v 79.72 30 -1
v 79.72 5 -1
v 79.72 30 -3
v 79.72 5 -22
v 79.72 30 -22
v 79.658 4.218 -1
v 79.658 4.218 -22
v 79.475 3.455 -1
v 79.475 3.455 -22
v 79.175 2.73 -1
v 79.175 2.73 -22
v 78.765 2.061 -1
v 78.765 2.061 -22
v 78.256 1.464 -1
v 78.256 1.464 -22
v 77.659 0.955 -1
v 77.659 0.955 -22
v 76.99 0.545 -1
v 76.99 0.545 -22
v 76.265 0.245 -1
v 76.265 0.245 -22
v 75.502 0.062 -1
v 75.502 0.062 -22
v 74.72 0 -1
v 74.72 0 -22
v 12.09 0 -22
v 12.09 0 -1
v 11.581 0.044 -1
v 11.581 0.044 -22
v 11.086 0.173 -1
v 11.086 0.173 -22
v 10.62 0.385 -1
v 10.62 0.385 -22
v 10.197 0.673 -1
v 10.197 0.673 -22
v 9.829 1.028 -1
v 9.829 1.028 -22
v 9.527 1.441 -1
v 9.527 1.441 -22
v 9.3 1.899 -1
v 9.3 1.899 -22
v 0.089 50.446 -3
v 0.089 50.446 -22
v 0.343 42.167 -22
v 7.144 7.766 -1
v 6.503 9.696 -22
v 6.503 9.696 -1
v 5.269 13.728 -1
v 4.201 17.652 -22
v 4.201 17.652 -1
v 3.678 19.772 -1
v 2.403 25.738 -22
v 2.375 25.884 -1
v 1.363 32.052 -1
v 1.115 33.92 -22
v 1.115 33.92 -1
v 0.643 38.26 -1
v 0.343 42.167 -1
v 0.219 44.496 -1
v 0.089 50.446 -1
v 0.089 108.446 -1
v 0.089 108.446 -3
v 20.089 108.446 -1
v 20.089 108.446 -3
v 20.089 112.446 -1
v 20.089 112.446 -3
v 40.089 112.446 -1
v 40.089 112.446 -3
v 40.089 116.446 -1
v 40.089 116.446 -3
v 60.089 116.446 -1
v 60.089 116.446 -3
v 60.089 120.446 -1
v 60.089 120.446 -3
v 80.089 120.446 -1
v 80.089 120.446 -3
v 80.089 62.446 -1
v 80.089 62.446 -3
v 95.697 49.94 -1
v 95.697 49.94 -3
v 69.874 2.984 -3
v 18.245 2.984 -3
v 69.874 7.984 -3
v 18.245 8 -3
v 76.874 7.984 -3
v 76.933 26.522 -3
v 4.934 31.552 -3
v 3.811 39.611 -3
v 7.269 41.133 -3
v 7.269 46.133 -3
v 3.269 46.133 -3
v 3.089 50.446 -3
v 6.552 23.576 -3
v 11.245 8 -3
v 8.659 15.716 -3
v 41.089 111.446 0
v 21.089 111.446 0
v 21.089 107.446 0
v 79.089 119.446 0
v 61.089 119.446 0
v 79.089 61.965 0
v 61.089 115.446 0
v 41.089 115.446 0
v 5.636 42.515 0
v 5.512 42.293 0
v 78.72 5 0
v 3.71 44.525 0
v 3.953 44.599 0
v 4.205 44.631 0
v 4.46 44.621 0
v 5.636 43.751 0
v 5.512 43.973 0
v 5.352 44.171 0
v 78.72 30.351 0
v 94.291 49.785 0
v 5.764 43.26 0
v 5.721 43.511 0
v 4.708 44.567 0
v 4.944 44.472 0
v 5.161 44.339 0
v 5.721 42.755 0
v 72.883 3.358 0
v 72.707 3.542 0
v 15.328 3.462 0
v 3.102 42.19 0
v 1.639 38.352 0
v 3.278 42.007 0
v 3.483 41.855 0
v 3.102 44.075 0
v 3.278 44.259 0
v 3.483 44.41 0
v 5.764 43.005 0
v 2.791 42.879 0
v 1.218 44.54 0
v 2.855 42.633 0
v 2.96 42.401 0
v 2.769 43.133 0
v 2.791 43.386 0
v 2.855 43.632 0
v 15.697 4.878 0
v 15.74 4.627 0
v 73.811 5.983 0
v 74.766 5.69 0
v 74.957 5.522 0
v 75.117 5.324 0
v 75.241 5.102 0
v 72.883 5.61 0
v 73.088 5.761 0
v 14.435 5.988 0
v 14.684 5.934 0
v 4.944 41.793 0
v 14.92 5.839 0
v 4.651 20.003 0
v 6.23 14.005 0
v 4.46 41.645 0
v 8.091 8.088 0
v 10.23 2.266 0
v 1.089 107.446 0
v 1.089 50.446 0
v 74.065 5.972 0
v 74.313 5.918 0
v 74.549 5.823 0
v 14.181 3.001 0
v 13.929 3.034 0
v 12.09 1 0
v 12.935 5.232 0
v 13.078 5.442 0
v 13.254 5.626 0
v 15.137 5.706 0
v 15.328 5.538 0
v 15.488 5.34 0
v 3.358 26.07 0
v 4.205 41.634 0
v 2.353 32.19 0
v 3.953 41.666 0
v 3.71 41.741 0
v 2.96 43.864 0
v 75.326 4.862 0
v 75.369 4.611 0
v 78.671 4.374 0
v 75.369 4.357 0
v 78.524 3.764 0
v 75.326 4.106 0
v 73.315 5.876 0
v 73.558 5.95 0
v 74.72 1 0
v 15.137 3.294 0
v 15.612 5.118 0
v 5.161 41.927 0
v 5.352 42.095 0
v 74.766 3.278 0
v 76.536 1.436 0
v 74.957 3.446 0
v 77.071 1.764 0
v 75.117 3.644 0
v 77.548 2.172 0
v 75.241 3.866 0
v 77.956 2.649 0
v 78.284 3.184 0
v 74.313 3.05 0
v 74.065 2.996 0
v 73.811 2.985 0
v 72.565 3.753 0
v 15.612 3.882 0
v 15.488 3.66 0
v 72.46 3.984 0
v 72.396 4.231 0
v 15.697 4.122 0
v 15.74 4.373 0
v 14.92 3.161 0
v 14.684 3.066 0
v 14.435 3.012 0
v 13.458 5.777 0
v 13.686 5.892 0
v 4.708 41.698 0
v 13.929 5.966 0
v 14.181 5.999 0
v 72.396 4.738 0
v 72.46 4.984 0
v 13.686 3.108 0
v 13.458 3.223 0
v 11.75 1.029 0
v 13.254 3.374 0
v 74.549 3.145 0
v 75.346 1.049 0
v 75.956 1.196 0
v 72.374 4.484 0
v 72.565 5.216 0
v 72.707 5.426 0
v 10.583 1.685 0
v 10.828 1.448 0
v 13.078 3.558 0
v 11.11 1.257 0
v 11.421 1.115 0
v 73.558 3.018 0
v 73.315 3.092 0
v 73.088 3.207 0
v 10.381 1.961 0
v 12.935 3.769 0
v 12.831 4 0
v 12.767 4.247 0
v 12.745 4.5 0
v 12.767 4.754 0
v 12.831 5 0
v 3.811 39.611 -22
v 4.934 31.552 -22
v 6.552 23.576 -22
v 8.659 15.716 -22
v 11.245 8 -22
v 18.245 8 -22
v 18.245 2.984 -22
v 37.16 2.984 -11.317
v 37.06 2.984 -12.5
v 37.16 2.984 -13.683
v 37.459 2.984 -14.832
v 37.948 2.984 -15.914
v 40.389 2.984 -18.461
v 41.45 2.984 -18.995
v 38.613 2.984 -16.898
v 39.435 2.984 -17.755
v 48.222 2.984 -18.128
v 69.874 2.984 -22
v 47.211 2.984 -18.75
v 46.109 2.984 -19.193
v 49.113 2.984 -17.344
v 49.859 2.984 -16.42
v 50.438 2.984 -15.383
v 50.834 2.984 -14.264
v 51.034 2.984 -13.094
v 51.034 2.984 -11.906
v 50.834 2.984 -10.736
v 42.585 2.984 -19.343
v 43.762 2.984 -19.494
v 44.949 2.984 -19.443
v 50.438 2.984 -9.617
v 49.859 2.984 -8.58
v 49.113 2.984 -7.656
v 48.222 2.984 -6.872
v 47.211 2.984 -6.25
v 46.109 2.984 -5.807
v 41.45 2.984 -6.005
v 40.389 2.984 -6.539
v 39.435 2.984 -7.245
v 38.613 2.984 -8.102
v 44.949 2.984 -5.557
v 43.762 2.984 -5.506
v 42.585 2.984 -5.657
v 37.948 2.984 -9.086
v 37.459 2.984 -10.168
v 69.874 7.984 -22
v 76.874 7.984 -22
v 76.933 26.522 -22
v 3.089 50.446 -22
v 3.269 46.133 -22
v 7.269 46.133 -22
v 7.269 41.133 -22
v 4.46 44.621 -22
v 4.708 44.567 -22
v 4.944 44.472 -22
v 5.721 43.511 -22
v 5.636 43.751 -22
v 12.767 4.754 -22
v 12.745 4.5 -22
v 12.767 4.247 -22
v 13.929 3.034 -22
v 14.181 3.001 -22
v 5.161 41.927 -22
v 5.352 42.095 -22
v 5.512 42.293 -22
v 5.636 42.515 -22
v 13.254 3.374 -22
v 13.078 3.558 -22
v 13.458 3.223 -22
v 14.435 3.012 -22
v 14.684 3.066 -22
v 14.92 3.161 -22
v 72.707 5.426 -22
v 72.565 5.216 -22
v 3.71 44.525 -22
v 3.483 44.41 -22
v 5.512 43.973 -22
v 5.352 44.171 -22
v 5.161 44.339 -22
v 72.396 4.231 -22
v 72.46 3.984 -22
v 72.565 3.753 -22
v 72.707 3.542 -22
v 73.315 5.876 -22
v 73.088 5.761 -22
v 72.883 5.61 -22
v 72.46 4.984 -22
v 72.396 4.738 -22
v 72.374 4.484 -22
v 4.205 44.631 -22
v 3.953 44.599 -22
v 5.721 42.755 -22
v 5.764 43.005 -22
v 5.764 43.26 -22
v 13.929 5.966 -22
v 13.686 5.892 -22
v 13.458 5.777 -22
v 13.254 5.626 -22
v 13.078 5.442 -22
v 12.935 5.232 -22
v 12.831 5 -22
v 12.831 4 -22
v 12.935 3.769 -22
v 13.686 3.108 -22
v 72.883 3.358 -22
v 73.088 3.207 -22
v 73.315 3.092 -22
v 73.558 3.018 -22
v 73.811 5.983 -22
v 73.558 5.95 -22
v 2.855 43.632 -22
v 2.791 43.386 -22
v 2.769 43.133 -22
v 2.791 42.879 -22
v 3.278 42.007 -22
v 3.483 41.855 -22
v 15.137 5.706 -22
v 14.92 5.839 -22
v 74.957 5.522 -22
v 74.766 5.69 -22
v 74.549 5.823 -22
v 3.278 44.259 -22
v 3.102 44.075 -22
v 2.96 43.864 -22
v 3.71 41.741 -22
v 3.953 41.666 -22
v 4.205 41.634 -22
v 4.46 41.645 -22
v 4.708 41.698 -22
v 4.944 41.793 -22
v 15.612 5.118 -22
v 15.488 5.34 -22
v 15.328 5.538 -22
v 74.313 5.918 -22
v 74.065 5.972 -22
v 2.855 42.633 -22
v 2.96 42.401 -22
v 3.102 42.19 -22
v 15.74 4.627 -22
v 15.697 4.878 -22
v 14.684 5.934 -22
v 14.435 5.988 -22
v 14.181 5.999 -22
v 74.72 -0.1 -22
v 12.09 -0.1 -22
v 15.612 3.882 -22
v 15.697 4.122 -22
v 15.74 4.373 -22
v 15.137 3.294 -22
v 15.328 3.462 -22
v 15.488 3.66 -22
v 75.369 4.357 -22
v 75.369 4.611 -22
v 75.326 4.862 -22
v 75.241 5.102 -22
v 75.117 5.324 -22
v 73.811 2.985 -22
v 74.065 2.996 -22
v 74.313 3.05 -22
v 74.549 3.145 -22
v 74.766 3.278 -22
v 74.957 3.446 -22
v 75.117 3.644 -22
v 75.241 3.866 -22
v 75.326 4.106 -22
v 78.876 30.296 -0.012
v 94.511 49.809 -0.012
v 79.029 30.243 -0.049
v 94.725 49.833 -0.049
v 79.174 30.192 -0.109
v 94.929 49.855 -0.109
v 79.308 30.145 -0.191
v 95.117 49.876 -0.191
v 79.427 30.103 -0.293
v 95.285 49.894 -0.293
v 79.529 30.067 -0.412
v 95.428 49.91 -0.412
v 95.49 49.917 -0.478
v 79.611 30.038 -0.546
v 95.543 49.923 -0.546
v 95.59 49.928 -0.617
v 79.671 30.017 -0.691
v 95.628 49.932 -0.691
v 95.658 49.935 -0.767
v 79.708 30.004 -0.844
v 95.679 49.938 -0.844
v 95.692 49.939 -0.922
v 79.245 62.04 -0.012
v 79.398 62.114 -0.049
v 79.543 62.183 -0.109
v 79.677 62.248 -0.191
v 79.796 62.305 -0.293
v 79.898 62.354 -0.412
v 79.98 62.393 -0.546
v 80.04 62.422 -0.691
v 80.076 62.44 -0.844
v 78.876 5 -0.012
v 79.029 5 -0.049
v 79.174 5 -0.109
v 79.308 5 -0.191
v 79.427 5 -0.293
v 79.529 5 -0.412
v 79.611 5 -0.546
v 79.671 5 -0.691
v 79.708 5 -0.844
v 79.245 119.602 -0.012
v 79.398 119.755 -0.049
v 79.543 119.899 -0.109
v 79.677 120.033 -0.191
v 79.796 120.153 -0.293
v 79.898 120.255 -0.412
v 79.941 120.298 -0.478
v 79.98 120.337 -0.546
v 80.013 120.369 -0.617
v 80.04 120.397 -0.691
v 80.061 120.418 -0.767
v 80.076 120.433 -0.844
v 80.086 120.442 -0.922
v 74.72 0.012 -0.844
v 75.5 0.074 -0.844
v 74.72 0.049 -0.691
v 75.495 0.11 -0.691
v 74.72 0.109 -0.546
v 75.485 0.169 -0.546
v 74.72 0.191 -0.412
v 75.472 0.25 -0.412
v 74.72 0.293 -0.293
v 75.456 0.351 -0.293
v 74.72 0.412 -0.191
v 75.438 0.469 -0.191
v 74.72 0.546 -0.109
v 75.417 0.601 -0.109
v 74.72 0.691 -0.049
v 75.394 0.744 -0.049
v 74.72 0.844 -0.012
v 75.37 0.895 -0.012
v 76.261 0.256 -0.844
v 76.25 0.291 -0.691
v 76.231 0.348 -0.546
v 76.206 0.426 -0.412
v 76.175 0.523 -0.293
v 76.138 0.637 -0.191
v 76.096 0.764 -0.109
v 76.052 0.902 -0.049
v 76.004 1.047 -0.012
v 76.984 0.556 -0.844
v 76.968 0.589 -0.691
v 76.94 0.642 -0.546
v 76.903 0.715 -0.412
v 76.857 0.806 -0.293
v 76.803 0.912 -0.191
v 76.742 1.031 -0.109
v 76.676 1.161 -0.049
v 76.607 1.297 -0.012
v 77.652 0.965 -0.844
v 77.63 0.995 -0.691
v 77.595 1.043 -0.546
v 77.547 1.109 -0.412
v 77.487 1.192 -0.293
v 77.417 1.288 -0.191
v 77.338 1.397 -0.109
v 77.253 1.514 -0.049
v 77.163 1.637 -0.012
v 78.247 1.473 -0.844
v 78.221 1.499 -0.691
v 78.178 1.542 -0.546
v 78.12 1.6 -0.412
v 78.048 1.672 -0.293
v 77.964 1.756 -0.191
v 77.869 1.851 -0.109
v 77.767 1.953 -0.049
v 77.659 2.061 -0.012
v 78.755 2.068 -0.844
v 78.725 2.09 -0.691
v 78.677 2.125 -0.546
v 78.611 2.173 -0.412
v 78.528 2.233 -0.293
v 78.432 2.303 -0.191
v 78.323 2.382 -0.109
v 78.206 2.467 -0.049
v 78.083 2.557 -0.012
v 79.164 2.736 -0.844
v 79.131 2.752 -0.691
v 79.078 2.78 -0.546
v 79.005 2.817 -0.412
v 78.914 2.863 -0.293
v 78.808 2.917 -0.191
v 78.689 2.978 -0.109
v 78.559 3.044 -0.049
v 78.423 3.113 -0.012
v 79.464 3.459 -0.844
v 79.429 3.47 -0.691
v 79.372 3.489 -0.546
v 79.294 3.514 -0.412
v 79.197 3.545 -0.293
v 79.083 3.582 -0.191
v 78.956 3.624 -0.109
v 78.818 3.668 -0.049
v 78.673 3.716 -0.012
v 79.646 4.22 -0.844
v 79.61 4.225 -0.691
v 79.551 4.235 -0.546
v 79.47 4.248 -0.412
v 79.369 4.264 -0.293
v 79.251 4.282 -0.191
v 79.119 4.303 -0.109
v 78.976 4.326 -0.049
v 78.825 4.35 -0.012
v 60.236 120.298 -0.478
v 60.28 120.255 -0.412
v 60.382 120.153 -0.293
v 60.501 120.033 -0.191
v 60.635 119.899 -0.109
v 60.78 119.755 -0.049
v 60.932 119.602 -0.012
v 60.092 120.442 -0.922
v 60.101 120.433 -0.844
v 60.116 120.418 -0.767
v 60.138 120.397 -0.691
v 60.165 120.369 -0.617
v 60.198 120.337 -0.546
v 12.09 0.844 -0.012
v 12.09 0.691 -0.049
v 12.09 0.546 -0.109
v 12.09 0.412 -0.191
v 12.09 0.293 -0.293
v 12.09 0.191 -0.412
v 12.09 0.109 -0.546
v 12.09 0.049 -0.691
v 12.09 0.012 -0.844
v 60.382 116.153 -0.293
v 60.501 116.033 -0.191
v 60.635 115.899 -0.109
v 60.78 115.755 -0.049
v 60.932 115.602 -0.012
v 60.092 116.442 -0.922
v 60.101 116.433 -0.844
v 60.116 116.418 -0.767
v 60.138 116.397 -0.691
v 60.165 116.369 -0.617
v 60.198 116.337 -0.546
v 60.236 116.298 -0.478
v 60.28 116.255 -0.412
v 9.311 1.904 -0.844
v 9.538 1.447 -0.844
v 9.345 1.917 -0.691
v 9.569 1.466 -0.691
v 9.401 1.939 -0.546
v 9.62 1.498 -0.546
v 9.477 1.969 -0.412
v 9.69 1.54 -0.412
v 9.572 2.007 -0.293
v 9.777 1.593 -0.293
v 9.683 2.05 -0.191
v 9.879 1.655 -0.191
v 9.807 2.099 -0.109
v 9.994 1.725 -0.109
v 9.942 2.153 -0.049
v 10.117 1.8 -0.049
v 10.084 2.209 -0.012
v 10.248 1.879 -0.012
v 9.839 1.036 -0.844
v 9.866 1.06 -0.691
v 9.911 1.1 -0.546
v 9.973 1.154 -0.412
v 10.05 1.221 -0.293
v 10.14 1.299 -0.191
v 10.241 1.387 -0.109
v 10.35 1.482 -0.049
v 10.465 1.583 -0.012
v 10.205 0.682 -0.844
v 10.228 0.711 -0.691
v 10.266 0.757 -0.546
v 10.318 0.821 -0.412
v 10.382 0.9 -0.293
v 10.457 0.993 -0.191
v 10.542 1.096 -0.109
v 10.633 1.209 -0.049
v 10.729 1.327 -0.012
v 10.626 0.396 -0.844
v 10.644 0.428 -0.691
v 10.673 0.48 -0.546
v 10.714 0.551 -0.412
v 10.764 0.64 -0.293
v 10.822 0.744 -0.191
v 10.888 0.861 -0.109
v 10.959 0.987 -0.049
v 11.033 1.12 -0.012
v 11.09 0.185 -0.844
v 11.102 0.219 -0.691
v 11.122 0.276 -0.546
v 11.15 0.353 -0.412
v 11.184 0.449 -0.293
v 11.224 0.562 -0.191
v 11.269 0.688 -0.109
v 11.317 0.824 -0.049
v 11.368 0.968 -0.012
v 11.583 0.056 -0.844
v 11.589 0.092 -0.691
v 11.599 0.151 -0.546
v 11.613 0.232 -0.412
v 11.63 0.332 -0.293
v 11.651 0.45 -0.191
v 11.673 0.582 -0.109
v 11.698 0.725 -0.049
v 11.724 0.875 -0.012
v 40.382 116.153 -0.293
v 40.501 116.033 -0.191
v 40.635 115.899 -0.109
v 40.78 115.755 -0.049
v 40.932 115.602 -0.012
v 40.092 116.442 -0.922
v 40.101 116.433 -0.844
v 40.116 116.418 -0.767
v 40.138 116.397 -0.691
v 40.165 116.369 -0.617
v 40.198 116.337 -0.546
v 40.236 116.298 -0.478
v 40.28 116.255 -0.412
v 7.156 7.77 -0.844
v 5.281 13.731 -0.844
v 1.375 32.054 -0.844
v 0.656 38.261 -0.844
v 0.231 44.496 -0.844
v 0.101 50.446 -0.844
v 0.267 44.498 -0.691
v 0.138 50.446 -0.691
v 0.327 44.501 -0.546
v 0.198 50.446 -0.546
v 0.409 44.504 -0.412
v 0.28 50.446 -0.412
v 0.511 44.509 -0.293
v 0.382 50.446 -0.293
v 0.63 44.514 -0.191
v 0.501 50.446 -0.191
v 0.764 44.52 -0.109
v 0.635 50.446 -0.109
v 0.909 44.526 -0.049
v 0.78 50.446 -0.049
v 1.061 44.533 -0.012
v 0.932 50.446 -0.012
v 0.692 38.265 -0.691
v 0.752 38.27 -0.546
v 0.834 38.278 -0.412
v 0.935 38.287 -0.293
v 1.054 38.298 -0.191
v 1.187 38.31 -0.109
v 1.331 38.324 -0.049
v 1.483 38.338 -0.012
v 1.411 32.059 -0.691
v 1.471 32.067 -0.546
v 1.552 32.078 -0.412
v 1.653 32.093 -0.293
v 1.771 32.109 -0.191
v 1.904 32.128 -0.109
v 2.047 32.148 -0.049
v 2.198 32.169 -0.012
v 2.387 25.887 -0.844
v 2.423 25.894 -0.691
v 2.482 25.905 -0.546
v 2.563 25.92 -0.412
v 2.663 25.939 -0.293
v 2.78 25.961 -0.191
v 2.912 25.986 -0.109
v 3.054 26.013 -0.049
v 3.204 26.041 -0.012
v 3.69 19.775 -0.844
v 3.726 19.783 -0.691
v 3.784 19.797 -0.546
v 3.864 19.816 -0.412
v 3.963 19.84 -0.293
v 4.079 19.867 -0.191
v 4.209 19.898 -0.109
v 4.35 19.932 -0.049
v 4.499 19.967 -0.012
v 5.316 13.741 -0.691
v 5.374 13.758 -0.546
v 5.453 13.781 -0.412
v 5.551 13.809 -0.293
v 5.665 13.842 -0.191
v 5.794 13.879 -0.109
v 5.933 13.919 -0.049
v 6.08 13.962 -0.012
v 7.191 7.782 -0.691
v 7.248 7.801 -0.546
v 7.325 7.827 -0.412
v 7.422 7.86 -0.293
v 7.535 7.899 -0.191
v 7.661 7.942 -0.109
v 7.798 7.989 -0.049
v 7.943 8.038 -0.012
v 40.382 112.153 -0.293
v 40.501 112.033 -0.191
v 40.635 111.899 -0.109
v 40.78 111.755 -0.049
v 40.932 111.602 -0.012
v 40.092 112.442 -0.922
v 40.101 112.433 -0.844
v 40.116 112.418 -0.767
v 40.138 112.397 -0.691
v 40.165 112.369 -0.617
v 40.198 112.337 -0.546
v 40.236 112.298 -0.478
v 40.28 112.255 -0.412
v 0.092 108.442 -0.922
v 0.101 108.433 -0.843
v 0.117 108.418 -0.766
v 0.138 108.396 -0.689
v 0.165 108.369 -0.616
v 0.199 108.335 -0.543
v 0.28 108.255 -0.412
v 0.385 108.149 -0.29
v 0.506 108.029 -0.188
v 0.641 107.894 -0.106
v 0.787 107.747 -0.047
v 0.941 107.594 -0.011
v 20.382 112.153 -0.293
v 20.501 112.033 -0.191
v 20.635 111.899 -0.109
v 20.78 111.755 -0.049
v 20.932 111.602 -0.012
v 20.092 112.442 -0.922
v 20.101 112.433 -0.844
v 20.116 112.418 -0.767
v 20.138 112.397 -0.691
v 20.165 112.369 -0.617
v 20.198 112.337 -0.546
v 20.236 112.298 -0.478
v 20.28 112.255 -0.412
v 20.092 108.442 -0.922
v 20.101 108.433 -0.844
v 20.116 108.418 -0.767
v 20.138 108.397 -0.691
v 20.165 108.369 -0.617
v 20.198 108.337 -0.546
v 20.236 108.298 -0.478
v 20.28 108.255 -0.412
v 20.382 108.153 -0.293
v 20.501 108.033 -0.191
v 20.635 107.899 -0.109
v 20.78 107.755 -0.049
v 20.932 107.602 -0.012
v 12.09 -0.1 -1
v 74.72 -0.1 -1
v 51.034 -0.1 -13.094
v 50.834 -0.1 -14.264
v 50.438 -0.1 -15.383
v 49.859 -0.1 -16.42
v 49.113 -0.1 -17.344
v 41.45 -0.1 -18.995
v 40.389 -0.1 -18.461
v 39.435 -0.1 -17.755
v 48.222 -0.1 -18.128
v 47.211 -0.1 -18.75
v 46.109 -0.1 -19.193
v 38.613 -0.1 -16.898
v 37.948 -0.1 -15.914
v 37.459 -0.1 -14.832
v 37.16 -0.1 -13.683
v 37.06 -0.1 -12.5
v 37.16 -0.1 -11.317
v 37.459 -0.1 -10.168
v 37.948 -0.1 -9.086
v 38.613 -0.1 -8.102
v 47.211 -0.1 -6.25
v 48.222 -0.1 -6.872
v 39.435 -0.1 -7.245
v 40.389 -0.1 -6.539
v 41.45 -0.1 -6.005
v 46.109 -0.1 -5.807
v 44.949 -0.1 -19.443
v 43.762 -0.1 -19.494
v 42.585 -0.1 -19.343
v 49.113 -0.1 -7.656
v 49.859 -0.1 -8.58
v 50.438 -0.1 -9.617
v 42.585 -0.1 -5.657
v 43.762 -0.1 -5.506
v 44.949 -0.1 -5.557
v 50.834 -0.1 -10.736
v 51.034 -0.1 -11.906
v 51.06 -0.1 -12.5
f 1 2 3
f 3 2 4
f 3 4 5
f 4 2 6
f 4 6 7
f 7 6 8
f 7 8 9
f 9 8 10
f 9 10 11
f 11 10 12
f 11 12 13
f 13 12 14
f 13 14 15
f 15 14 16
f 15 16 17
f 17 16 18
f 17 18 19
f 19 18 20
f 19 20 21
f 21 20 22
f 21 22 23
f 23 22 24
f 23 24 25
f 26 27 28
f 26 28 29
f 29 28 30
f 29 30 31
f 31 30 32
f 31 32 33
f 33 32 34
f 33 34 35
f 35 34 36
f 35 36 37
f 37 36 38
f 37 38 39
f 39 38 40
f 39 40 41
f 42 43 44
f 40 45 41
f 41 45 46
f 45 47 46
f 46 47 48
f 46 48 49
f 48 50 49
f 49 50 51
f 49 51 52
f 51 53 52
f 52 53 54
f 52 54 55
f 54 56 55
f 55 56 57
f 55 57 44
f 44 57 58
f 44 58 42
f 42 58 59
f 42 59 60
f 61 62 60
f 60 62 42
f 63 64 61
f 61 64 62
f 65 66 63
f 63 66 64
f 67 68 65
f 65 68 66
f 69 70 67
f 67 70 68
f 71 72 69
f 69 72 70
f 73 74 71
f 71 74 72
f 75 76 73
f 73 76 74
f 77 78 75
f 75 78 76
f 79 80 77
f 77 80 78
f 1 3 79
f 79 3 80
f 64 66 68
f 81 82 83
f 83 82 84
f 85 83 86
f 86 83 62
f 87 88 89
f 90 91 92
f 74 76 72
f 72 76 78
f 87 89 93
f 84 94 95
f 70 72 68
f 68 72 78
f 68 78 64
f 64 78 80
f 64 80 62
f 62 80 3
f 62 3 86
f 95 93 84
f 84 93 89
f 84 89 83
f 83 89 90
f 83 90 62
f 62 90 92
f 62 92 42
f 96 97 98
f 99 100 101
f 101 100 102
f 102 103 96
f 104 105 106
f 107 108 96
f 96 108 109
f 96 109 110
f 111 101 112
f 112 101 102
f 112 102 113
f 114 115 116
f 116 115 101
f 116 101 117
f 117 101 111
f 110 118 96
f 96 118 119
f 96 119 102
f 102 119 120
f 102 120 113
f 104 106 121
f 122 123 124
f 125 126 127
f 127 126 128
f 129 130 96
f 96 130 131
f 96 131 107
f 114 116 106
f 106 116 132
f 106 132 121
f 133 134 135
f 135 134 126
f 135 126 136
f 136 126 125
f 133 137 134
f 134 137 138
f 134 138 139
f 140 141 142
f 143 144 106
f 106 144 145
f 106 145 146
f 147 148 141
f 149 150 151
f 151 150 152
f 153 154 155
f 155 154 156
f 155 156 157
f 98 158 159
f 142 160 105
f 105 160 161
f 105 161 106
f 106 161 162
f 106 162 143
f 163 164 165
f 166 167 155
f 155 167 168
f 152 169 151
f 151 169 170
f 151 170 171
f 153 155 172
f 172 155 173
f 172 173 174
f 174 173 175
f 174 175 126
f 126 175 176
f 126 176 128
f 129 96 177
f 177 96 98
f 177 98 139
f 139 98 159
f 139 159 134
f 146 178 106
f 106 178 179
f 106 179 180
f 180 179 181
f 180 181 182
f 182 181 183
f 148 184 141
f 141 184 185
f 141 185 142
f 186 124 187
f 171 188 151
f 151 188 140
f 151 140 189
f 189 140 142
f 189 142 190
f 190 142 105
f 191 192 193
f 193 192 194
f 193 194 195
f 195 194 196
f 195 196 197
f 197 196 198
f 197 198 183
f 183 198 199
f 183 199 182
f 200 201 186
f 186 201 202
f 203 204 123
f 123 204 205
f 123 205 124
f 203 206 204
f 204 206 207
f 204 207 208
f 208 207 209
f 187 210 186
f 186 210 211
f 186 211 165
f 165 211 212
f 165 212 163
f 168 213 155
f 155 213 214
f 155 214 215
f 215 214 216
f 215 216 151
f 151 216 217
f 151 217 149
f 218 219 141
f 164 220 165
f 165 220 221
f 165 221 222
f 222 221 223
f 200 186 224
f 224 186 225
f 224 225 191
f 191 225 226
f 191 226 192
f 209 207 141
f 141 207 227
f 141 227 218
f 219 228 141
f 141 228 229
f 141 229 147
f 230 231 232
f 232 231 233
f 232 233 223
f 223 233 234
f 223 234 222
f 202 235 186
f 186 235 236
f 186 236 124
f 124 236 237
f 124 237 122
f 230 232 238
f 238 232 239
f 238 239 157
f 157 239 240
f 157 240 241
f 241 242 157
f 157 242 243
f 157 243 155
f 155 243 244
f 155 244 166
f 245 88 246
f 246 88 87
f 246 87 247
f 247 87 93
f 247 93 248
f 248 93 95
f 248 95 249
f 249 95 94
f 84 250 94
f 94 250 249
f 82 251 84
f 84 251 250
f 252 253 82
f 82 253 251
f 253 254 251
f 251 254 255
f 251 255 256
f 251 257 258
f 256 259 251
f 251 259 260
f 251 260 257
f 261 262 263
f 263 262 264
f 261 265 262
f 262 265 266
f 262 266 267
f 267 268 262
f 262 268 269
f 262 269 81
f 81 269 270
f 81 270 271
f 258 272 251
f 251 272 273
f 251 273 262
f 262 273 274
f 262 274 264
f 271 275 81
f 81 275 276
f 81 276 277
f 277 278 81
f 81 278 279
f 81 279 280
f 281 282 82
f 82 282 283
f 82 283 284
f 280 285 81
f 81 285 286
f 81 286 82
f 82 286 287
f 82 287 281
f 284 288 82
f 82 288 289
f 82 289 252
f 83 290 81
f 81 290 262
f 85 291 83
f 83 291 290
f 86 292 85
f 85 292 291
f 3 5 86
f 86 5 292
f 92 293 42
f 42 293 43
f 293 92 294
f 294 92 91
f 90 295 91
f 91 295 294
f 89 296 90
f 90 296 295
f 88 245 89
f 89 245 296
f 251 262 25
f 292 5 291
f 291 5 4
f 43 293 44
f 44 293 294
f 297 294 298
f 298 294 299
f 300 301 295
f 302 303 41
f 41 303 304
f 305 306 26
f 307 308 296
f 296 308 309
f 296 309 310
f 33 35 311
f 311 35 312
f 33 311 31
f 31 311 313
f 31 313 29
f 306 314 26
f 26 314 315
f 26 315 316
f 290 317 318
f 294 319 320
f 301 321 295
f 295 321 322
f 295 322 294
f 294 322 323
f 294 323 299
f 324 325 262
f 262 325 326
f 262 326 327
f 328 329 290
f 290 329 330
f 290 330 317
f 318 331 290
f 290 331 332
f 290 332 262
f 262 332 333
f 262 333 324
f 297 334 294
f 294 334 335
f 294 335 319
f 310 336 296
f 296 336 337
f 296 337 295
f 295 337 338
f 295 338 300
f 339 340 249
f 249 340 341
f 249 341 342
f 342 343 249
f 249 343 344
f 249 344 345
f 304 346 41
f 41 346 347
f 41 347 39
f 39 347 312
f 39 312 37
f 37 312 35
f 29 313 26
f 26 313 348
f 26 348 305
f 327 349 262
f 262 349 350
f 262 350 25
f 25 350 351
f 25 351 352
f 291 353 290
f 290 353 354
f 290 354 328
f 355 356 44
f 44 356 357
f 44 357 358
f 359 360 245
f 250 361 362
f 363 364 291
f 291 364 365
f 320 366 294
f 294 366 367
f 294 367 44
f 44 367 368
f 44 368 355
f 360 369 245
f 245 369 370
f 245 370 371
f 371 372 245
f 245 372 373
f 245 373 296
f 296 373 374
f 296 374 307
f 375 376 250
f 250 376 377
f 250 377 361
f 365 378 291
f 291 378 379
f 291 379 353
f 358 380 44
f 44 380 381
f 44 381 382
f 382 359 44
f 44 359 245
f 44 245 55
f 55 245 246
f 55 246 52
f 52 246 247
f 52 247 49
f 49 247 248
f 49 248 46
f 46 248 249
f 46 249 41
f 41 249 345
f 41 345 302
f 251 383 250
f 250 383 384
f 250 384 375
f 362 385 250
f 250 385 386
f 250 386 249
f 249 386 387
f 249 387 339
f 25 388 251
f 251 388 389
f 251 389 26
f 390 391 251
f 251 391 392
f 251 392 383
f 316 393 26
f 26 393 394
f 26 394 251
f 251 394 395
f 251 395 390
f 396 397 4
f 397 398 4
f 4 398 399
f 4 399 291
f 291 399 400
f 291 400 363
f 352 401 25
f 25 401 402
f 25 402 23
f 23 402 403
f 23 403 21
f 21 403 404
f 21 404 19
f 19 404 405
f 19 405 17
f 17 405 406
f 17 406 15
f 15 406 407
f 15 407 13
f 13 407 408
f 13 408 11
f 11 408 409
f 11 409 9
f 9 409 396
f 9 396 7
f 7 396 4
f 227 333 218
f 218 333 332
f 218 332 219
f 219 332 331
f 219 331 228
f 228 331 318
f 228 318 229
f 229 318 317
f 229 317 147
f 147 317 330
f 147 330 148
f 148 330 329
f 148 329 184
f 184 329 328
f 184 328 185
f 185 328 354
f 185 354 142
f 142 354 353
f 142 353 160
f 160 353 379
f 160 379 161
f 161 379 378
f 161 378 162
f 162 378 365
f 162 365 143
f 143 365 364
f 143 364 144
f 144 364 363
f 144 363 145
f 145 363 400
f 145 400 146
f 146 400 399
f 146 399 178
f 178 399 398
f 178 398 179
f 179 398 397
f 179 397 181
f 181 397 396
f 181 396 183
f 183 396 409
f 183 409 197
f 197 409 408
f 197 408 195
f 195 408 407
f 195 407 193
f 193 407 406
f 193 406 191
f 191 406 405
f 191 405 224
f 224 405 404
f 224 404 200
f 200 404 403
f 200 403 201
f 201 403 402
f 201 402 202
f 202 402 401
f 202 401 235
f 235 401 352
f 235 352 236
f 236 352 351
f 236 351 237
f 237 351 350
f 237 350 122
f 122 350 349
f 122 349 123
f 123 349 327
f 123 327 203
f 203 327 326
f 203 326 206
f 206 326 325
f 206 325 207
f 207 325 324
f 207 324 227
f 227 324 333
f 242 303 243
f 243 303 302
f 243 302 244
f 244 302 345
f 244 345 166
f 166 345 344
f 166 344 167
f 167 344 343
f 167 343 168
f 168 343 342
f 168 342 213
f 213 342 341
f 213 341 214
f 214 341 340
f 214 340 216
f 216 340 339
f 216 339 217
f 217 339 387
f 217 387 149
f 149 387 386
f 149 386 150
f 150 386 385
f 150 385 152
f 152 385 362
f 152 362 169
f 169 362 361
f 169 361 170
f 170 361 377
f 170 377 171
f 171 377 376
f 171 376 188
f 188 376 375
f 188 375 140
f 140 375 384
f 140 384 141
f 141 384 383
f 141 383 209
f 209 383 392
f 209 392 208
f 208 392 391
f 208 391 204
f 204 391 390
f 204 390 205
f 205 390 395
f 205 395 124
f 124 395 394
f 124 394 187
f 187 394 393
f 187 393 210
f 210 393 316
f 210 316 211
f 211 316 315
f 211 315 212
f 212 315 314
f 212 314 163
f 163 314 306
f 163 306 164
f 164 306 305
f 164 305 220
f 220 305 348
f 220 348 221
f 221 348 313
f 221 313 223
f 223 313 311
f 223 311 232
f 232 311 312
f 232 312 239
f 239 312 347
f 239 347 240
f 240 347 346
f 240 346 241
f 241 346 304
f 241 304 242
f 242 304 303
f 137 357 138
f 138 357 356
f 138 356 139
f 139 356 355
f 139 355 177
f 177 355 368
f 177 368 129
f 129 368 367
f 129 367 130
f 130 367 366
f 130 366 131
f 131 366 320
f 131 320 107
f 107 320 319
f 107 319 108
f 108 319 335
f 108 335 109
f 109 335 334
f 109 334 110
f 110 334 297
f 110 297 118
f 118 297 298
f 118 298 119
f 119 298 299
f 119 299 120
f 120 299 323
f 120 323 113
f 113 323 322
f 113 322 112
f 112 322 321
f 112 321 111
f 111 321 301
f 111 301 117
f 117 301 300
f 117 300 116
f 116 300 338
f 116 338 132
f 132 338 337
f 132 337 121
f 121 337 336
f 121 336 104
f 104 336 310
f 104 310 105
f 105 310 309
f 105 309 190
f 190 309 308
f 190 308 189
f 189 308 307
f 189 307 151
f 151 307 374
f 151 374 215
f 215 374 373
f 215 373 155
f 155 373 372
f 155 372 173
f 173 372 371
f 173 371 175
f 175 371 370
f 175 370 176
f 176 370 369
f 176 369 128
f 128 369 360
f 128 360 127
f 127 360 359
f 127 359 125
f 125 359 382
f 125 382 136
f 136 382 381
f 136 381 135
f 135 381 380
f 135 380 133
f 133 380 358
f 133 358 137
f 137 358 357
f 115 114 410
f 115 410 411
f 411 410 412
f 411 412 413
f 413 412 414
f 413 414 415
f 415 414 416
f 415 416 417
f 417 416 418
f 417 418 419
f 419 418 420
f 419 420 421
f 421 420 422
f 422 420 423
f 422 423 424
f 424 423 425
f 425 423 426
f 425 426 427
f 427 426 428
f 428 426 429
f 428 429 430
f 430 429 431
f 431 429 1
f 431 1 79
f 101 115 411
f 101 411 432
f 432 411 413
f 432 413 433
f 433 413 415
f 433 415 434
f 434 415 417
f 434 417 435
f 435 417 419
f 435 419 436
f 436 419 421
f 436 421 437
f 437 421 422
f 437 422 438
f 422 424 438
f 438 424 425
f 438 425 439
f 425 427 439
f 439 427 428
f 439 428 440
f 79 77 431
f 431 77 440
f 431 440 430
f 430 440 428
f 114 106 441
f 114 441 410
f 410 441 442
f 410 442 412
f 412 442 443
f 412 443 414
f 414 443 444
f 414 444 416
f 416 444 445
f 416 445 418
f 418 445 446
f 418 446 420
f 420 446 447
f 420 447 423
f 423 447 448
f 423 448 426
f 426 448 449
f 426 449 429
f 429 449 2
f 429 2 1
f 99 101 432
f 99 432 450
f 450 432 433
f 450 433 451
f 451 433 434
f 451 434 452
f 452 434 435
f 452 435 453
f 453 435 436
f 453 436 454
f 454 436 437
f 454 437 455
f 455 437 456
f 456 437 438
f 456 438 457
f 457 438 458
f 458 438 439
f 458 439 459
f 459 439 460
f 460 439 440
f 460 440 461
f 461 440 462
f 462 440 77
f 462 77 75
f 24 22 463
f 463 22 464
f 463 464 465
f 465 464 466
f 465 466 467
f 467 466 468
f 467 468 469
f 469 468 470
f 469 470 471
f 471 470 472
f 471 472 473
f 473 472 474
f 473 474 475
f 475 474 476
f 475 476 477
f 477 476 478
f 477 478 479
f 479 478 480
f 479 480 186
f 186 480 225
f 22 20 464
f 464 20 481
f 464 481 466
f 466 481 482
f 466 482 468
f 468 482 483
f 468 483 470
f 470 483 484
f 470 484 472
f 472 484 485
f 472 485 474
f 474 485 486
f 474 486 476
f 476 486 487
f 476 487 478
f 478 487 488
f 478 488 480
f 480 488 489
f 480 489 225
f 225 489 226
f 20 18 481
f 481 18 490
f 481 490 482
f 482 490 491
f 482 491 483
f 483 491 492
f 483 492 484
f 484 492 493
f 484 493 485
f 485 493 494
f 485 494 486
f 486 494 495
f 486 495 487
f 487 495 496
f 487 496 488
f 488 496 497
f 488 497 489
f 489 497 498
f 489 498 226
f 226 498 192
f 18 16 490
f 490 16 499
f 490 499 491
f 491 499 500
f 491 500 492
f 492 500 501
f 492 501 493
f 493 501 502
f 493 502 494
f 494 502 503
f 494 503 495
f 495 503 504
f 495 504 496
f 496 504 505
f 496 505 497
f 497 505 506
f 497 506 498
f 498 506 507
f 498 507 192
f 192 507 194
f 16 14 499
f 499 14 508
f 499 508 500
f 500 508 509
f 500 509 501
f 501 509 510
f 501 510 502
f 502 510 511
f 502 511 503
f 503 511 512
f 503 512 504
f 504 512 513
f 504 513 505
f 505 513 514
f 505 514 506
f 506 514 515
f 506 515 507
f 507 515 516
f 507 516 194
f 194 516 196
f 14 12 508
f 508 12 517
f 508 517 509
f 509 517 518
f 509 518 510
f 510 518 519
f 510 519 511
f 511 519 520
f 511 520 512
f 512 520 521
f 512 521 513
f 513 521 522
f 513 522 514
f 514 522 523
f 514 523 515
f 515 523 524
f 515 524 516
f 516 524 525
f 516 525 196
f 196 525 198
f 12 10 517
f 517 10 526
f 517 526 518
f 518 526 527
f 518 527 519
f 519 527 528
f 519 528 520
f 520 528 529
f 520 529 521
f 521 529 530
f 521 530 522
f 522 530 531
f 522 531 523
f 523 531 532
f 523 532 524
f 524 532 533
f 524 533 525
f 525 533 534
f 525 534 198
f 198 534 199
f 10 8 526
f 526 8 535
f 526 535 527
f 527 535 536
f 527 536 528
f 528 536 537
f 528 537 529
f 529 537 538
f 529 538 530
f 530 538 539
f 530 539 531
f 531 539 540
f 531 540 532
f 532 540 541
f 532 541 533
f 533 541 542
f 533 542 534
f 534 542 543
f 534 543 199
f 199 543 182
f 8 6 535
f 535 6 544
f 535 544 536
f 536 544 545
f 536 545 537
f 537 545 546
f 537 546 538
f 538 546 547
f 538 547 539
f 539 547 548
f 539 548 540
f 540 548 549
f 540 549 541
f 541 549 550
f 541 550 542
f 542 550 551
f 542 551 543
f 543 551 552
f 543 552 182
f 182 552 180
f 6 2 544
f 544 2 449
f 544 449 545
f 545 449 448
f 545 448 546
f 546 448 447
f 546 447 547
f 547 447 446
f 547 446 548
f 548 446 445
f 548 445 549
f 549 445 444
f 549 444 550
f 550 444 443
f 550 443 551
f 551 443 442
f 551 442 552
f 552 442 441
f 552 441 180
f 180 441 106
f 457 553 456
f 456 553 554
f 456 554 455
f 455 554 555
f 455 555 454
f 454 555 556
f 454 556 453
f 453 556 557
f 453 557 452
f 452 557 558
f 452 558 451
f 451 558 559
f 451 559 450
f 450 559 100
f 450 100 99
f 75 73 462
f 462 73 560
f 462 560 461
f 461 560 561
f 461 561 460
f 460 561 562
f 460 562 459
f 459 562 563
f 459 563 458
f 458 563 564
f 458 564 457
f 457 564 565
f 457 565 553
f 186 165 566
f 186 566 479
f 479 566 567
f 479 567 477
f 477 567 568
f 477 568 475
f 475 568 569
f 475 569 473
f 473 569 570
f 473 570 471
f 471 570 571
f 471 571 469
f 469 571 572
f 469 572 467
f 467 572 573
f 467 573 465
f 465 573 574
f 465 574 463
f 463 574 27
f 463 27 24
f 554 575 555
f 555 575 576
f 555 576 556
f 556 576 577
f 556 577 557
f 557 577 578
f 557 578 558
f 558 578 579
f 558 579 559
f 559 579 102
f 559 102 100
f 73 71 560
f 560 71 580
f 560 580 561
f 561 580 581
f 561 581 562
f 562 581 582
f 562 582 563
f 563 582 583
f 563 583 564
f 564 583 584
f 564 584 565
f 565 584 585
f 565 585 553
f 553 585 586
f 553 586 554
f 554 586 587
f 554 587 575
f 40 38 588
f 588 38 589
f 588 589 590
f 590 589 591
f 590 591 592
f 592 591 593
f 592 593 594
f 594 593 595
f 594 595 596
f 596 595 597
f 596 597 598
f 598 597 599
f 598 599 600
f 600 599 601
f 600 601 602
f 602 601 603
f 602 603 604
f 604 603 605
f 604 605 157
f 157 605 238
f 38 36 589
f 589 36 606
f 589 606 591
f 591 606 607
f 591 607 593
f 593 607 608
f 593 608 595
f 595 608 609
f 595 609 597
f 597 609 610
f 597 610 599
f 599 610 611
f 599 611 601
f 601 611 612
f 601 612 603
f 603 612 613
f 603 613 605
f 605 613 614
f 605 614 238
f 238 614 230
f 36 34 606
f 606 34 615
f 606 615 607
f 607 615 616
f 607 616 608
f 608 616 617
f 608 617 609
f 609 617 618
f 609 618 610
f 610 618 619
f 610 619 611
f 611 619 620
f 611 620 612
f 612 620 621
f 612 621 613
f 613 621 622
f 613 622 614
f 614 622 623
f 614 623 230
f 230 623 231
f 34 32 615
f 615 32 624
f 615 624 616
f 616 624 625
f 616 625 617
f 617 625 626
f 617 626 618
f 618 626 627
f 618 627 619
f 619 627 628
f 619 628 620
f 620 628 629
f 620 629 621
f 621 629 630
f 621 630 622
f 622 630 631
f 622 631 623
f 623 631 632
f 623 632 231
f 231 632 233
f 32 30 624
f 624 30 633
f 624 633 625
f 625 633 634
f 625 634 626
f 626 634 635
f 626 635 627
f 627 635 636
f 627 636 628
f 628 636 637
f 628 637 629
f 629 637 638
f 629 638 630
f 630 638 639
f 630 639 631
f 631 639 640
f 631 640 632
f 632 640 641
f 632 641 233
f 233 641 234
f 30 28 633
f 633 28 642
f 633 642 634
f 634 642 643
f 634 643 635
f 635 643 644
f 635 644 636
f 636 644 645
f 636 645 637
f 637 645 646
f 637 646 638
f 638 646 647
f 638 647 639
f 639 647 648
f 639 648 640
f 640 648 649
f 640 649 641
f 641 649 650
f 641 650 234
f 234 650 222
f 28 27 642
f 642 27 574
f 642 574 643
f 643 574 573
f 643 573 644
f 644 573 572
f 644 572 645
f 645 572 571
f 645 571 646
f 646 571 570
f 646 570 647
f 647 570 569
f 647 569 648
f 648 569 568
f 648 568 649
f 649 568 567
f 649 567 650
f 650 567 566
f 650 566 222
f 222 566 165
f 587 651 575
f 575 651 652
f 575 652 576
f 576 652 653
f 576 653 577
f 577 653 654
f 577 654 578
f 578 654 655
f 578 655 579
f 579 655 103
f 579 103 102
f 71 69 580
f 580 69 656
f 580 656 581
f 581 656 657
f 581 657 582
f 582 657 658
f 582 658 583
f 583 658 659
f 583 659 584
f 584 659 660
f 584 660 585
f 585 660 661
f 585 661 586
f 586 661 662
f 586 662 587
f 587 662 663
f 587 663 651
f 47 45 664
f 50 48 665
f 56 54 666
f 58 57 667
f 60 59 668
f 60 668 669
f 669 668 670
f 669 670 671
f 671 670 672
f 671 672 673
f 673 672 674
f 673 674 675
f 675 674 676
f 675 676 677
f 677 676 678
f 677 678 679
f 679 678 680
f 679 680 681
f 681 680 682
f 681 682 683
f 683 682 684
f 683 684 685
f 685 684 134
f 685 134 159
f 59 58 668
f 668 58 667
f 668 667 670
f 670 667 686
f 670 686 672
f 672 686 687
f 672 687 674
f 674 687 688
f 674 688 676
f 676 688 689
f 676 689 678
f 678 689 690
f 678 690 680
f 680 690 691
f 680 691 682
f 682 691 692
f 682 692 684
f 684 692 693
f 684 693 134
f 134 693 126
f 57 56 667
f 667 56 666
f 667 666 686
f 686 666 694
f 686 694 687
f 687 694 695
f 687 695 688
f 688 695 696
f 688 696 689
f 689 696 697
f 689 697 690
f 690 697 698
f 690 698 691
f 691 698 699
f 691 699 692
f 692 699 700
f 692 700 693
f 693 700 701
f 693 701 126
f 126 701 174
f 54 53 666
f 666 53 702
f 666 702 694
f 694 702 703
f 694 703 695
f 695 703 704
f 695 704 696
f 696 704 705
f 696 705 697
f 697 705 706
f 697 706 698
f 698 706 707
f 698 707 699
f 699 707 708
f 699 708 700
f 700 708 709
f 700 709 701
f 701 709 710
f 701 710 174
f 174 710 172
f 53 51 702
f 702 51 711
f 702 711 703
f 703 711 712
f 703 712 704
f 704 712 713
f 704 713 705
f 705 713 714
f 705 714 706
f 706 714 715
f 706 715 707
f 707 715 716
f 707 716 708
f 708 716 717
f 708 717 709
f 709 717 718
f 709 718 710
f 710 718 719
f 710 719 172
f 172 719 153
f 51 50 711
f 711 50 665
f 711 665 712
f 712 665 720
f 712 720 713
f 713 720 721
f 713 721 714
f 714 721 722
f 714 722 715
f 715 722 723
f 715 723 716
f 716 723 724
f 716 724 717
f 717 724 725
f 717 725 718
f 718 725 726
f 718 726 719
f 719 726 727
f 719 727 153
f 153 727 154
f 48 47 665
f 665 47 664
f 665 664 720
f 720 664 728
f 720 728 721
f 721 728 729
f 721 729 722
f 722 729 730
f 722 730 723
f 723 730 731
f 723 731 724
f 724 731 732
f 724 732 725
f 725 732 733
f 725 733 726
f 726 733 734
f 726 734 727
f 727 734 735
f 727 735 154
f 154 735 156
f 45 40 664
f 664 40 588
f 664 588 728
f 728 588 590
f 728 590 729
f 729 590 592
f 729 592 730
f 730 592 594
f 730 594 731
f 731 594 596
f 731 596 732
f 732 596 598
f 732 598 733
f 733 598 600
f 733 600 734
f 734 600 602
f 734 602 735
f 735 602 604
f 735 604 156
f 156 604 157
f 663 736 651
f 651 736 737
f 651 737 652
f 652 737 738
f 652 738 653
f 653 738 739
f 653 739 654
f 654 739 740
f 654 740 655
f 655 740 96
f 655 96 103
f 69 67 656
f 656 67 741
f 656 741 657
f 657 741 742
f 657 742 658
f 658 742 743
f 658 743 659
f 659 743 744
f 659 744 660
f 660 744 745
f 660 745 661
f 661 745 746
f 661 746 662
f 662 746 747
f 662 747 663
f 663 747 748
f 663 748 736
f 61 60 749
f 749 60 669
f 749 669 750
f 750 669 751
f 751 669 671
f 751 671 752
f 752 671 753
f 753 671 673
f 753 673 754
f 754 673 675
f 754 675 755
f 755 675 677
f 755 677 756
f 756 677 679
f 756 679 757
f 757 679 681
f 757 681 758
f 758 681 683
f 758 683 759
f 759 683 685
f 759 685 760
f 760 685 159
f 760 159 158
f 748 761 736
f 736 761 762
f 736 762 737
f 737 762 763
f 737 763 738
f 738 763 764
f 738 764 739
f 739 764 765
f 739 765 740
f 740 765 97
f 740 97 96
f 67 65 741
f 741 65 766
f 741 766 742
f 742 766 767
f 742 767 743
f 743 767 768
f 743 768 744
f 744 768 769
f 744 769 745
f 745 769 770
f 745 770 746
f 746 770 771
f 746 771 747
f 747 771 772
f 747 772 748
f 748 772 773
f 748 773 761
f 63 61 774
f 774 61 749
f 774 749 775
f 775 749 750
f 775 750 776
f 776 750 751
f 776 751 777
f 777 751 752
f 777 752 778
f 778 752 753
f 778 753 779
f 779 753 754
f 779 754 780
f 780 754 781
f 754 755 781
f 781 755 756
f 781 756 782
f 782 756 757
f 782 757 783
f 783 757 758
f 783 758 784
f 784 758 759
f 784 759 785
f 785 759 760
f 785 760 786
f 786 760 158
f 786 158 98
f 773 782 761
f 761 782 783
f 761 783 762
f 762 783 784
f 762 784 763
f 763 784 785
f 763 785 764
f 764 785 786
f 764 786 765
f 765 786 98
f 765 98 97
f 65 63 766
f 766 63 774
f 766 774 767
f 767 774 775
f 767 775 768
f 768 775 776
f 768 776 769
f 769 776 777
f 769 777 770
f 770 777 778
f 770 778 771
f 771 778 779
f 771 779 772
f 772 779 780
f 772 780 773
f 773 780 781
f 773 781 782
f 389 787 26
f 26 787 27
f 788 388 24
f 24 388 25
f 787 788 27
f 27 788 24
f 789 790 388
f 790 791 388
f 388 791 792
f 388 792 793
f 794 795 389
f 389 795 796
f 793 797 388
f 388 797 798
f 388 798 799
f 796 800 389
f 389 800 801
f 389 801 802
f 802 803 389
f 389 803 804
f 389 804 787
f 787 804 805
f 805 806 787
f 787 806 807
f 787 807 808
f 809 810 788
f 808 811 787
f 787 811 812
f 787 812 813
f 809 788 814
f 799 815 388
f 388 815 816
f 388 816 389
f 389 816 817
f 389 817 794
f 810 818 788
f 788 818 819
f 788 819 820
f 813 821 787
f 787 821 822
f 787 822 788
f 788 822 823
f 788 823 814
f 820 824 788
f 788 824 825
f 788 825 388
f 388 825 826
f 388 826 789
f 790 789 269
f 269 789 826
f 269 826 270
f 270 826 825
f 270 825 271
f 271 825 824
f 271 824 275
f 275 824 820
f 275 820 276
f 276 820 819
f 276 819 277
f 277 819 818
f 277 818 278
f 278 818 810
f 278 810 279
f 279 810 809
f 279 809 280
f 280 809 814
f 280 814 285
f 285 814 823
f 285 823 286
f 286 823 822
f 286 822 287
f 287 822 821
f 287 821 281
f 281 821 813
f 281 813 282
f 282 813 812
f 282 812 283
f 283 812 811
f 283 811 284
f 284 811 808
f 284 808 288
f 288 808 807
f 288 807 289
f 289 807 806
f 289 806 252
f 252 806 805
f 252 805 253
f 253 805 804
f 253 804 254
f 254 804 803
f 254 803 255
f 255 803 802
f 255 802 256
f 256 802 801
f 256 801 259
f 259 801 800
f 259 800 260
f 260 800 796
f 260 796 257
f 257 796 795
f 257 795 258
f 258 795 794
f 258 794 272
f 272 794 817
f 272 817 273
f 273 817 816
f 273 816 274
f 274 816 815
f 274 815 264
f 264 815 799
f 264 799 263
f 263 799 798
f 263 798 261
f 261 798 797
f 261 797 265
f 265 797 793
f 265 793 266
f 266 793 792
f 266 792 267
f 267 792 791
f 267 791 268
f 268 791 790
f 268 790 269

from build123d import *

# Parameters (mm, degrees)
BOSS_EXTRUDE1_DEPTH = 3
BOSS_EXTRUDE6_DEPTH = 22
CUT_EXTRUDE2_REACH  = 157.399
SKETCH23_R          = 1.5
FILLET2_R           = 1
SKETCH26_W          = 62.629754997
SKETCH26_H          = 21
BOSS_EXTRUDE8_DEPTH = 0.1
CUT_EXTRUDE4_REACH  = 155.098
SKETCH28_R          = 7


with BuildPart() as part:
    # Sketch1 → Boss-Extrude1 (new body)
    with BuildSketch(Plane.XY):
        with BuildLine():
            Line((0.088772672, 50.445513271), (0.088772672, 108.445513271))
            Line((0.088772672, 108.445513271), (20.088772672, 108.445513271))
            Line((20.088772672, 108.445513271), (20.088772672, 112.445513271))
            Line((20.088772672, 112.445513271), (40.088772672, 112.445513271))
            Line((40.088772672, 112.445513271), (40.088772672, 116.445513271))
            Line((40.088772672, 116.445513271), (60.088772672, 116.445513271))
            Line((60.088772672, 116.445513271), (60.088772672, 120.445513271))
            Line((60.088772672, 120.445513271), (80.088772672, 120.445513271))
            Line((80.088772672, 120.445513271), (80.088772672, 62.445513271))
            Line((80.088772672, 62.445513271), (95.696655206, 49.939754486))
            Line((95.696655206, 49.939754486), (79.719999866, 30))
            Line((79.719999866, 30), (79.719999866, 5))
            ThreePointArc((79.719999866, 5), (78.255533771, 1.464466094), (74.719999866, 0))
            Line((74.719999866, 0), (45.081340107, 0))
            Line((45.081340107, 0), (12.090244869, 0))
            ThreePointArc((12.090244869, 0), (10.402431062, 0.519821669), (9.299525382, 1.899143631))
            ThreePointArc((9.299525382, 1.899143631), (2.402932305, 25.737613543), (0.088772672, 50.445513271))
        make_face()
    extrude(amount=-BOSS_EXTRUDE1_DEPTH)

    # Sketch19 → Boss-Extrude6 (add)
    with BuildSketch(Plane.XY):
        with BuildLine():
            Line((45.081340107, 0), (12.090244869, 0))
            ThreePointArc((12.090244869, 0), (10.402431062, 0.519821669), (9.299525382, 1.899143631))
            ThreePointArc((9.299525382, 1.899143631), (2.402932305, 25.737613543), (0.088772672, 50.445513271))
            Line((0.088772672, 50.445513271), (3.088772672, 50.445513271))
            ThreePointArc((3.088772672, 50.445513271), (3.16127999, 48.288360754), (3.269039313, 46.132681692))
            Line((3.269039313, 46.132681692), (7.269039313, 46.132681692))
            Line((7.269039313, 46.132681692), (7.269039313, 41.132681692))
            Line((7.269039313, 41.132681692), (3.810920964, 39.61137507))
            ThreePointArc((3.810920964, 39.61137507), (6.552384593, 23.576295262), (11.244934046, 8.000050948))
            Line((11.244934046, 8.000050948), (18.244934046, 8.000050948))
            Line((18.244934046, 8.000050948), (18.244934046, 2.984064914))
            Line((18.244934046, 2.984064914), (45.23554431, 2.984064914))
            Line((45.23554431, 2.984064914), (69.874178677, 2.984064914))
            Line((69.874178677, 2.984064914), (69.874178677, 7.984064914))
            Line((69.874178677, 7.984064914), (76.874178677, 7.984064914))
            Line((76.874178677, 7.984064914), (76.933259672, 26.52199324))
            Line((76.933259672, 26.52199324), (79.719999866, 30))
            Line((79.719999866, 30), (79.719999866, 5))
            ThreePointArc((79.719999866, 5), (78.255533771, 1.464466094), (74.719999866, 0))
            Line((74.719999866, 0), (45.081340107, 0))
        make_face()
    extrude(amount=-BOSS_EXTRUDE6_DEPTH)

    # Sketch23 → Cut-Extrude2 (cut, up to next)
    with BuildSketch(Plane(origin=(0, 0, -22), x_dir=(-1, 0, 0), z_dir=(0, 0, -1)), mode=Mode.PRIVATE) as cut_extrude2_sk1:
        with Locations((-4.269039313, 43.132681692)):
            Circle(SKETCH23_R)
    cut_extrude2_tool1 = extrude(cut_extrude2_sk1.sketch, amount=-CUT_EXTRUDE2_REACH, mode=Mode.PRIVATE) & part.part
    # Sketch23 → Cut-Extrude2 (cut, up to next)
    with BuildSketch(Plane(origin=(0, 0, -22), x_dir=(-1, 0, 0), z_dir=(0, 0, -1)), mode=Mode.PRIVATE) as cut_extrude2_sk2:
        with Locations((-14.244934046, 4.500050948)):
            Circle(SKETCH23_R)
    cut_extrude2_tool2 = extrude(cut_extrude2_sk2.sketch, amount=-CUT_EXTRUDE2_REACH, mode=Mode.PRIVATE) & part.part
    # Sketch23 → Cut-Extrude2 (cut, up to next)
    with BuildSketch(Plane(origin=(0, 0, -22), x_dir=(-1, 0, 0), z_dir=(0, 0, -1)), mode=Mode.PRIVATE) as cut_extrude2_sk3:
        with Locations((-73.874178677, 4.484064914)):
            Circle(SKETCH23_R)
    cut_extrude2_tool3 = extrude(cut_extrude2_sk3.sketch, amount=-CUT_EXTRUDE2_REACH, mode=Mode.PRIVATE) & part.part
    add(cut_extrude2_tool1.solids().sort_by_distance((4.269039, 43.132682, -22))[0], mode=Mode.SUBTRACT)
    add(cut_extrude2_tool2.solids().sort_by_distance((14.244934, 4.500051, -22))[0], mode=Mode.SUBTRACT)
    add(cut_extrude2_tool3.solids().sort_by_distance((73.874179, 4.484065, -22))[0], mode=Mode.SUBTRACT)

    # Fillet2
    fillet2_edges = [part.edges().sort_by_distance(p)[0] for p in [
        (78.255533771, 1.464466094, 0),
        (43.405122367, 0, 0),
        (10.402431062, 0.519821669, 0),
        (2.402932305, 25.737613543, 0),
        (0.088772672, 79.445513271, 0),
        (10.088772672, 108.445513271, 0),
        (20.088772672, 110.445513271, 0),
        (30.088772672, 112.445513271, 0),
        (40.088772672, 114.445513271, 0),
        (50.088772672, 116.445513271, 0),
        (60.088772672, 118.445513271, 0),
        (70.088772672, 120.445513271, 0),
        (80.088772672, 91.445513271, 0),
        (87.892713939, 56.192633878, 0),
        (87.708327536, 39.969877243, 0),
        (79.719999866, 17.5, 0),
    ]]
    fillet(fillet2_edges, radius=FILLET2_R)

    # Sketch26 → Boss-Extrude8 (add)
    with BuildSketch(Plane.XZ):
        with Locations((43.405122368, -11.5)):
            Rectangle(SKETCH26_W, SKETCH26_H)
    extrude(amount=BOSS_EXTRUDE8_DEPTH)

    # Sketch28 → Cut-Extrude4 (cut, up to next)
    with BuildSketch(Plane(origin=(0, 2.984064914, 0), x_dir=(1, 0, 0), z_dir=(0, 1, 0)), mode=Mode.PRIVATE) as cut_extrude4_sk1:
        with Locations(Location((44.059556361, 12.5, 0), (0, 0, 180))):
            Circle(SKETCH28_R)
    cut_extrude4_tool1 = extrude(cut_extrude4_sk1.sketch, amount=-CUT_EXTRUDE4_REACH, mode=Mode.PRIVATE) & part.part
    add(cut_extrude4_tool1.solids().sort_by_distance((44.059556, 2.984065, -12.5))[0], mode=Mode.SUBTRACT)


solid = part.part
